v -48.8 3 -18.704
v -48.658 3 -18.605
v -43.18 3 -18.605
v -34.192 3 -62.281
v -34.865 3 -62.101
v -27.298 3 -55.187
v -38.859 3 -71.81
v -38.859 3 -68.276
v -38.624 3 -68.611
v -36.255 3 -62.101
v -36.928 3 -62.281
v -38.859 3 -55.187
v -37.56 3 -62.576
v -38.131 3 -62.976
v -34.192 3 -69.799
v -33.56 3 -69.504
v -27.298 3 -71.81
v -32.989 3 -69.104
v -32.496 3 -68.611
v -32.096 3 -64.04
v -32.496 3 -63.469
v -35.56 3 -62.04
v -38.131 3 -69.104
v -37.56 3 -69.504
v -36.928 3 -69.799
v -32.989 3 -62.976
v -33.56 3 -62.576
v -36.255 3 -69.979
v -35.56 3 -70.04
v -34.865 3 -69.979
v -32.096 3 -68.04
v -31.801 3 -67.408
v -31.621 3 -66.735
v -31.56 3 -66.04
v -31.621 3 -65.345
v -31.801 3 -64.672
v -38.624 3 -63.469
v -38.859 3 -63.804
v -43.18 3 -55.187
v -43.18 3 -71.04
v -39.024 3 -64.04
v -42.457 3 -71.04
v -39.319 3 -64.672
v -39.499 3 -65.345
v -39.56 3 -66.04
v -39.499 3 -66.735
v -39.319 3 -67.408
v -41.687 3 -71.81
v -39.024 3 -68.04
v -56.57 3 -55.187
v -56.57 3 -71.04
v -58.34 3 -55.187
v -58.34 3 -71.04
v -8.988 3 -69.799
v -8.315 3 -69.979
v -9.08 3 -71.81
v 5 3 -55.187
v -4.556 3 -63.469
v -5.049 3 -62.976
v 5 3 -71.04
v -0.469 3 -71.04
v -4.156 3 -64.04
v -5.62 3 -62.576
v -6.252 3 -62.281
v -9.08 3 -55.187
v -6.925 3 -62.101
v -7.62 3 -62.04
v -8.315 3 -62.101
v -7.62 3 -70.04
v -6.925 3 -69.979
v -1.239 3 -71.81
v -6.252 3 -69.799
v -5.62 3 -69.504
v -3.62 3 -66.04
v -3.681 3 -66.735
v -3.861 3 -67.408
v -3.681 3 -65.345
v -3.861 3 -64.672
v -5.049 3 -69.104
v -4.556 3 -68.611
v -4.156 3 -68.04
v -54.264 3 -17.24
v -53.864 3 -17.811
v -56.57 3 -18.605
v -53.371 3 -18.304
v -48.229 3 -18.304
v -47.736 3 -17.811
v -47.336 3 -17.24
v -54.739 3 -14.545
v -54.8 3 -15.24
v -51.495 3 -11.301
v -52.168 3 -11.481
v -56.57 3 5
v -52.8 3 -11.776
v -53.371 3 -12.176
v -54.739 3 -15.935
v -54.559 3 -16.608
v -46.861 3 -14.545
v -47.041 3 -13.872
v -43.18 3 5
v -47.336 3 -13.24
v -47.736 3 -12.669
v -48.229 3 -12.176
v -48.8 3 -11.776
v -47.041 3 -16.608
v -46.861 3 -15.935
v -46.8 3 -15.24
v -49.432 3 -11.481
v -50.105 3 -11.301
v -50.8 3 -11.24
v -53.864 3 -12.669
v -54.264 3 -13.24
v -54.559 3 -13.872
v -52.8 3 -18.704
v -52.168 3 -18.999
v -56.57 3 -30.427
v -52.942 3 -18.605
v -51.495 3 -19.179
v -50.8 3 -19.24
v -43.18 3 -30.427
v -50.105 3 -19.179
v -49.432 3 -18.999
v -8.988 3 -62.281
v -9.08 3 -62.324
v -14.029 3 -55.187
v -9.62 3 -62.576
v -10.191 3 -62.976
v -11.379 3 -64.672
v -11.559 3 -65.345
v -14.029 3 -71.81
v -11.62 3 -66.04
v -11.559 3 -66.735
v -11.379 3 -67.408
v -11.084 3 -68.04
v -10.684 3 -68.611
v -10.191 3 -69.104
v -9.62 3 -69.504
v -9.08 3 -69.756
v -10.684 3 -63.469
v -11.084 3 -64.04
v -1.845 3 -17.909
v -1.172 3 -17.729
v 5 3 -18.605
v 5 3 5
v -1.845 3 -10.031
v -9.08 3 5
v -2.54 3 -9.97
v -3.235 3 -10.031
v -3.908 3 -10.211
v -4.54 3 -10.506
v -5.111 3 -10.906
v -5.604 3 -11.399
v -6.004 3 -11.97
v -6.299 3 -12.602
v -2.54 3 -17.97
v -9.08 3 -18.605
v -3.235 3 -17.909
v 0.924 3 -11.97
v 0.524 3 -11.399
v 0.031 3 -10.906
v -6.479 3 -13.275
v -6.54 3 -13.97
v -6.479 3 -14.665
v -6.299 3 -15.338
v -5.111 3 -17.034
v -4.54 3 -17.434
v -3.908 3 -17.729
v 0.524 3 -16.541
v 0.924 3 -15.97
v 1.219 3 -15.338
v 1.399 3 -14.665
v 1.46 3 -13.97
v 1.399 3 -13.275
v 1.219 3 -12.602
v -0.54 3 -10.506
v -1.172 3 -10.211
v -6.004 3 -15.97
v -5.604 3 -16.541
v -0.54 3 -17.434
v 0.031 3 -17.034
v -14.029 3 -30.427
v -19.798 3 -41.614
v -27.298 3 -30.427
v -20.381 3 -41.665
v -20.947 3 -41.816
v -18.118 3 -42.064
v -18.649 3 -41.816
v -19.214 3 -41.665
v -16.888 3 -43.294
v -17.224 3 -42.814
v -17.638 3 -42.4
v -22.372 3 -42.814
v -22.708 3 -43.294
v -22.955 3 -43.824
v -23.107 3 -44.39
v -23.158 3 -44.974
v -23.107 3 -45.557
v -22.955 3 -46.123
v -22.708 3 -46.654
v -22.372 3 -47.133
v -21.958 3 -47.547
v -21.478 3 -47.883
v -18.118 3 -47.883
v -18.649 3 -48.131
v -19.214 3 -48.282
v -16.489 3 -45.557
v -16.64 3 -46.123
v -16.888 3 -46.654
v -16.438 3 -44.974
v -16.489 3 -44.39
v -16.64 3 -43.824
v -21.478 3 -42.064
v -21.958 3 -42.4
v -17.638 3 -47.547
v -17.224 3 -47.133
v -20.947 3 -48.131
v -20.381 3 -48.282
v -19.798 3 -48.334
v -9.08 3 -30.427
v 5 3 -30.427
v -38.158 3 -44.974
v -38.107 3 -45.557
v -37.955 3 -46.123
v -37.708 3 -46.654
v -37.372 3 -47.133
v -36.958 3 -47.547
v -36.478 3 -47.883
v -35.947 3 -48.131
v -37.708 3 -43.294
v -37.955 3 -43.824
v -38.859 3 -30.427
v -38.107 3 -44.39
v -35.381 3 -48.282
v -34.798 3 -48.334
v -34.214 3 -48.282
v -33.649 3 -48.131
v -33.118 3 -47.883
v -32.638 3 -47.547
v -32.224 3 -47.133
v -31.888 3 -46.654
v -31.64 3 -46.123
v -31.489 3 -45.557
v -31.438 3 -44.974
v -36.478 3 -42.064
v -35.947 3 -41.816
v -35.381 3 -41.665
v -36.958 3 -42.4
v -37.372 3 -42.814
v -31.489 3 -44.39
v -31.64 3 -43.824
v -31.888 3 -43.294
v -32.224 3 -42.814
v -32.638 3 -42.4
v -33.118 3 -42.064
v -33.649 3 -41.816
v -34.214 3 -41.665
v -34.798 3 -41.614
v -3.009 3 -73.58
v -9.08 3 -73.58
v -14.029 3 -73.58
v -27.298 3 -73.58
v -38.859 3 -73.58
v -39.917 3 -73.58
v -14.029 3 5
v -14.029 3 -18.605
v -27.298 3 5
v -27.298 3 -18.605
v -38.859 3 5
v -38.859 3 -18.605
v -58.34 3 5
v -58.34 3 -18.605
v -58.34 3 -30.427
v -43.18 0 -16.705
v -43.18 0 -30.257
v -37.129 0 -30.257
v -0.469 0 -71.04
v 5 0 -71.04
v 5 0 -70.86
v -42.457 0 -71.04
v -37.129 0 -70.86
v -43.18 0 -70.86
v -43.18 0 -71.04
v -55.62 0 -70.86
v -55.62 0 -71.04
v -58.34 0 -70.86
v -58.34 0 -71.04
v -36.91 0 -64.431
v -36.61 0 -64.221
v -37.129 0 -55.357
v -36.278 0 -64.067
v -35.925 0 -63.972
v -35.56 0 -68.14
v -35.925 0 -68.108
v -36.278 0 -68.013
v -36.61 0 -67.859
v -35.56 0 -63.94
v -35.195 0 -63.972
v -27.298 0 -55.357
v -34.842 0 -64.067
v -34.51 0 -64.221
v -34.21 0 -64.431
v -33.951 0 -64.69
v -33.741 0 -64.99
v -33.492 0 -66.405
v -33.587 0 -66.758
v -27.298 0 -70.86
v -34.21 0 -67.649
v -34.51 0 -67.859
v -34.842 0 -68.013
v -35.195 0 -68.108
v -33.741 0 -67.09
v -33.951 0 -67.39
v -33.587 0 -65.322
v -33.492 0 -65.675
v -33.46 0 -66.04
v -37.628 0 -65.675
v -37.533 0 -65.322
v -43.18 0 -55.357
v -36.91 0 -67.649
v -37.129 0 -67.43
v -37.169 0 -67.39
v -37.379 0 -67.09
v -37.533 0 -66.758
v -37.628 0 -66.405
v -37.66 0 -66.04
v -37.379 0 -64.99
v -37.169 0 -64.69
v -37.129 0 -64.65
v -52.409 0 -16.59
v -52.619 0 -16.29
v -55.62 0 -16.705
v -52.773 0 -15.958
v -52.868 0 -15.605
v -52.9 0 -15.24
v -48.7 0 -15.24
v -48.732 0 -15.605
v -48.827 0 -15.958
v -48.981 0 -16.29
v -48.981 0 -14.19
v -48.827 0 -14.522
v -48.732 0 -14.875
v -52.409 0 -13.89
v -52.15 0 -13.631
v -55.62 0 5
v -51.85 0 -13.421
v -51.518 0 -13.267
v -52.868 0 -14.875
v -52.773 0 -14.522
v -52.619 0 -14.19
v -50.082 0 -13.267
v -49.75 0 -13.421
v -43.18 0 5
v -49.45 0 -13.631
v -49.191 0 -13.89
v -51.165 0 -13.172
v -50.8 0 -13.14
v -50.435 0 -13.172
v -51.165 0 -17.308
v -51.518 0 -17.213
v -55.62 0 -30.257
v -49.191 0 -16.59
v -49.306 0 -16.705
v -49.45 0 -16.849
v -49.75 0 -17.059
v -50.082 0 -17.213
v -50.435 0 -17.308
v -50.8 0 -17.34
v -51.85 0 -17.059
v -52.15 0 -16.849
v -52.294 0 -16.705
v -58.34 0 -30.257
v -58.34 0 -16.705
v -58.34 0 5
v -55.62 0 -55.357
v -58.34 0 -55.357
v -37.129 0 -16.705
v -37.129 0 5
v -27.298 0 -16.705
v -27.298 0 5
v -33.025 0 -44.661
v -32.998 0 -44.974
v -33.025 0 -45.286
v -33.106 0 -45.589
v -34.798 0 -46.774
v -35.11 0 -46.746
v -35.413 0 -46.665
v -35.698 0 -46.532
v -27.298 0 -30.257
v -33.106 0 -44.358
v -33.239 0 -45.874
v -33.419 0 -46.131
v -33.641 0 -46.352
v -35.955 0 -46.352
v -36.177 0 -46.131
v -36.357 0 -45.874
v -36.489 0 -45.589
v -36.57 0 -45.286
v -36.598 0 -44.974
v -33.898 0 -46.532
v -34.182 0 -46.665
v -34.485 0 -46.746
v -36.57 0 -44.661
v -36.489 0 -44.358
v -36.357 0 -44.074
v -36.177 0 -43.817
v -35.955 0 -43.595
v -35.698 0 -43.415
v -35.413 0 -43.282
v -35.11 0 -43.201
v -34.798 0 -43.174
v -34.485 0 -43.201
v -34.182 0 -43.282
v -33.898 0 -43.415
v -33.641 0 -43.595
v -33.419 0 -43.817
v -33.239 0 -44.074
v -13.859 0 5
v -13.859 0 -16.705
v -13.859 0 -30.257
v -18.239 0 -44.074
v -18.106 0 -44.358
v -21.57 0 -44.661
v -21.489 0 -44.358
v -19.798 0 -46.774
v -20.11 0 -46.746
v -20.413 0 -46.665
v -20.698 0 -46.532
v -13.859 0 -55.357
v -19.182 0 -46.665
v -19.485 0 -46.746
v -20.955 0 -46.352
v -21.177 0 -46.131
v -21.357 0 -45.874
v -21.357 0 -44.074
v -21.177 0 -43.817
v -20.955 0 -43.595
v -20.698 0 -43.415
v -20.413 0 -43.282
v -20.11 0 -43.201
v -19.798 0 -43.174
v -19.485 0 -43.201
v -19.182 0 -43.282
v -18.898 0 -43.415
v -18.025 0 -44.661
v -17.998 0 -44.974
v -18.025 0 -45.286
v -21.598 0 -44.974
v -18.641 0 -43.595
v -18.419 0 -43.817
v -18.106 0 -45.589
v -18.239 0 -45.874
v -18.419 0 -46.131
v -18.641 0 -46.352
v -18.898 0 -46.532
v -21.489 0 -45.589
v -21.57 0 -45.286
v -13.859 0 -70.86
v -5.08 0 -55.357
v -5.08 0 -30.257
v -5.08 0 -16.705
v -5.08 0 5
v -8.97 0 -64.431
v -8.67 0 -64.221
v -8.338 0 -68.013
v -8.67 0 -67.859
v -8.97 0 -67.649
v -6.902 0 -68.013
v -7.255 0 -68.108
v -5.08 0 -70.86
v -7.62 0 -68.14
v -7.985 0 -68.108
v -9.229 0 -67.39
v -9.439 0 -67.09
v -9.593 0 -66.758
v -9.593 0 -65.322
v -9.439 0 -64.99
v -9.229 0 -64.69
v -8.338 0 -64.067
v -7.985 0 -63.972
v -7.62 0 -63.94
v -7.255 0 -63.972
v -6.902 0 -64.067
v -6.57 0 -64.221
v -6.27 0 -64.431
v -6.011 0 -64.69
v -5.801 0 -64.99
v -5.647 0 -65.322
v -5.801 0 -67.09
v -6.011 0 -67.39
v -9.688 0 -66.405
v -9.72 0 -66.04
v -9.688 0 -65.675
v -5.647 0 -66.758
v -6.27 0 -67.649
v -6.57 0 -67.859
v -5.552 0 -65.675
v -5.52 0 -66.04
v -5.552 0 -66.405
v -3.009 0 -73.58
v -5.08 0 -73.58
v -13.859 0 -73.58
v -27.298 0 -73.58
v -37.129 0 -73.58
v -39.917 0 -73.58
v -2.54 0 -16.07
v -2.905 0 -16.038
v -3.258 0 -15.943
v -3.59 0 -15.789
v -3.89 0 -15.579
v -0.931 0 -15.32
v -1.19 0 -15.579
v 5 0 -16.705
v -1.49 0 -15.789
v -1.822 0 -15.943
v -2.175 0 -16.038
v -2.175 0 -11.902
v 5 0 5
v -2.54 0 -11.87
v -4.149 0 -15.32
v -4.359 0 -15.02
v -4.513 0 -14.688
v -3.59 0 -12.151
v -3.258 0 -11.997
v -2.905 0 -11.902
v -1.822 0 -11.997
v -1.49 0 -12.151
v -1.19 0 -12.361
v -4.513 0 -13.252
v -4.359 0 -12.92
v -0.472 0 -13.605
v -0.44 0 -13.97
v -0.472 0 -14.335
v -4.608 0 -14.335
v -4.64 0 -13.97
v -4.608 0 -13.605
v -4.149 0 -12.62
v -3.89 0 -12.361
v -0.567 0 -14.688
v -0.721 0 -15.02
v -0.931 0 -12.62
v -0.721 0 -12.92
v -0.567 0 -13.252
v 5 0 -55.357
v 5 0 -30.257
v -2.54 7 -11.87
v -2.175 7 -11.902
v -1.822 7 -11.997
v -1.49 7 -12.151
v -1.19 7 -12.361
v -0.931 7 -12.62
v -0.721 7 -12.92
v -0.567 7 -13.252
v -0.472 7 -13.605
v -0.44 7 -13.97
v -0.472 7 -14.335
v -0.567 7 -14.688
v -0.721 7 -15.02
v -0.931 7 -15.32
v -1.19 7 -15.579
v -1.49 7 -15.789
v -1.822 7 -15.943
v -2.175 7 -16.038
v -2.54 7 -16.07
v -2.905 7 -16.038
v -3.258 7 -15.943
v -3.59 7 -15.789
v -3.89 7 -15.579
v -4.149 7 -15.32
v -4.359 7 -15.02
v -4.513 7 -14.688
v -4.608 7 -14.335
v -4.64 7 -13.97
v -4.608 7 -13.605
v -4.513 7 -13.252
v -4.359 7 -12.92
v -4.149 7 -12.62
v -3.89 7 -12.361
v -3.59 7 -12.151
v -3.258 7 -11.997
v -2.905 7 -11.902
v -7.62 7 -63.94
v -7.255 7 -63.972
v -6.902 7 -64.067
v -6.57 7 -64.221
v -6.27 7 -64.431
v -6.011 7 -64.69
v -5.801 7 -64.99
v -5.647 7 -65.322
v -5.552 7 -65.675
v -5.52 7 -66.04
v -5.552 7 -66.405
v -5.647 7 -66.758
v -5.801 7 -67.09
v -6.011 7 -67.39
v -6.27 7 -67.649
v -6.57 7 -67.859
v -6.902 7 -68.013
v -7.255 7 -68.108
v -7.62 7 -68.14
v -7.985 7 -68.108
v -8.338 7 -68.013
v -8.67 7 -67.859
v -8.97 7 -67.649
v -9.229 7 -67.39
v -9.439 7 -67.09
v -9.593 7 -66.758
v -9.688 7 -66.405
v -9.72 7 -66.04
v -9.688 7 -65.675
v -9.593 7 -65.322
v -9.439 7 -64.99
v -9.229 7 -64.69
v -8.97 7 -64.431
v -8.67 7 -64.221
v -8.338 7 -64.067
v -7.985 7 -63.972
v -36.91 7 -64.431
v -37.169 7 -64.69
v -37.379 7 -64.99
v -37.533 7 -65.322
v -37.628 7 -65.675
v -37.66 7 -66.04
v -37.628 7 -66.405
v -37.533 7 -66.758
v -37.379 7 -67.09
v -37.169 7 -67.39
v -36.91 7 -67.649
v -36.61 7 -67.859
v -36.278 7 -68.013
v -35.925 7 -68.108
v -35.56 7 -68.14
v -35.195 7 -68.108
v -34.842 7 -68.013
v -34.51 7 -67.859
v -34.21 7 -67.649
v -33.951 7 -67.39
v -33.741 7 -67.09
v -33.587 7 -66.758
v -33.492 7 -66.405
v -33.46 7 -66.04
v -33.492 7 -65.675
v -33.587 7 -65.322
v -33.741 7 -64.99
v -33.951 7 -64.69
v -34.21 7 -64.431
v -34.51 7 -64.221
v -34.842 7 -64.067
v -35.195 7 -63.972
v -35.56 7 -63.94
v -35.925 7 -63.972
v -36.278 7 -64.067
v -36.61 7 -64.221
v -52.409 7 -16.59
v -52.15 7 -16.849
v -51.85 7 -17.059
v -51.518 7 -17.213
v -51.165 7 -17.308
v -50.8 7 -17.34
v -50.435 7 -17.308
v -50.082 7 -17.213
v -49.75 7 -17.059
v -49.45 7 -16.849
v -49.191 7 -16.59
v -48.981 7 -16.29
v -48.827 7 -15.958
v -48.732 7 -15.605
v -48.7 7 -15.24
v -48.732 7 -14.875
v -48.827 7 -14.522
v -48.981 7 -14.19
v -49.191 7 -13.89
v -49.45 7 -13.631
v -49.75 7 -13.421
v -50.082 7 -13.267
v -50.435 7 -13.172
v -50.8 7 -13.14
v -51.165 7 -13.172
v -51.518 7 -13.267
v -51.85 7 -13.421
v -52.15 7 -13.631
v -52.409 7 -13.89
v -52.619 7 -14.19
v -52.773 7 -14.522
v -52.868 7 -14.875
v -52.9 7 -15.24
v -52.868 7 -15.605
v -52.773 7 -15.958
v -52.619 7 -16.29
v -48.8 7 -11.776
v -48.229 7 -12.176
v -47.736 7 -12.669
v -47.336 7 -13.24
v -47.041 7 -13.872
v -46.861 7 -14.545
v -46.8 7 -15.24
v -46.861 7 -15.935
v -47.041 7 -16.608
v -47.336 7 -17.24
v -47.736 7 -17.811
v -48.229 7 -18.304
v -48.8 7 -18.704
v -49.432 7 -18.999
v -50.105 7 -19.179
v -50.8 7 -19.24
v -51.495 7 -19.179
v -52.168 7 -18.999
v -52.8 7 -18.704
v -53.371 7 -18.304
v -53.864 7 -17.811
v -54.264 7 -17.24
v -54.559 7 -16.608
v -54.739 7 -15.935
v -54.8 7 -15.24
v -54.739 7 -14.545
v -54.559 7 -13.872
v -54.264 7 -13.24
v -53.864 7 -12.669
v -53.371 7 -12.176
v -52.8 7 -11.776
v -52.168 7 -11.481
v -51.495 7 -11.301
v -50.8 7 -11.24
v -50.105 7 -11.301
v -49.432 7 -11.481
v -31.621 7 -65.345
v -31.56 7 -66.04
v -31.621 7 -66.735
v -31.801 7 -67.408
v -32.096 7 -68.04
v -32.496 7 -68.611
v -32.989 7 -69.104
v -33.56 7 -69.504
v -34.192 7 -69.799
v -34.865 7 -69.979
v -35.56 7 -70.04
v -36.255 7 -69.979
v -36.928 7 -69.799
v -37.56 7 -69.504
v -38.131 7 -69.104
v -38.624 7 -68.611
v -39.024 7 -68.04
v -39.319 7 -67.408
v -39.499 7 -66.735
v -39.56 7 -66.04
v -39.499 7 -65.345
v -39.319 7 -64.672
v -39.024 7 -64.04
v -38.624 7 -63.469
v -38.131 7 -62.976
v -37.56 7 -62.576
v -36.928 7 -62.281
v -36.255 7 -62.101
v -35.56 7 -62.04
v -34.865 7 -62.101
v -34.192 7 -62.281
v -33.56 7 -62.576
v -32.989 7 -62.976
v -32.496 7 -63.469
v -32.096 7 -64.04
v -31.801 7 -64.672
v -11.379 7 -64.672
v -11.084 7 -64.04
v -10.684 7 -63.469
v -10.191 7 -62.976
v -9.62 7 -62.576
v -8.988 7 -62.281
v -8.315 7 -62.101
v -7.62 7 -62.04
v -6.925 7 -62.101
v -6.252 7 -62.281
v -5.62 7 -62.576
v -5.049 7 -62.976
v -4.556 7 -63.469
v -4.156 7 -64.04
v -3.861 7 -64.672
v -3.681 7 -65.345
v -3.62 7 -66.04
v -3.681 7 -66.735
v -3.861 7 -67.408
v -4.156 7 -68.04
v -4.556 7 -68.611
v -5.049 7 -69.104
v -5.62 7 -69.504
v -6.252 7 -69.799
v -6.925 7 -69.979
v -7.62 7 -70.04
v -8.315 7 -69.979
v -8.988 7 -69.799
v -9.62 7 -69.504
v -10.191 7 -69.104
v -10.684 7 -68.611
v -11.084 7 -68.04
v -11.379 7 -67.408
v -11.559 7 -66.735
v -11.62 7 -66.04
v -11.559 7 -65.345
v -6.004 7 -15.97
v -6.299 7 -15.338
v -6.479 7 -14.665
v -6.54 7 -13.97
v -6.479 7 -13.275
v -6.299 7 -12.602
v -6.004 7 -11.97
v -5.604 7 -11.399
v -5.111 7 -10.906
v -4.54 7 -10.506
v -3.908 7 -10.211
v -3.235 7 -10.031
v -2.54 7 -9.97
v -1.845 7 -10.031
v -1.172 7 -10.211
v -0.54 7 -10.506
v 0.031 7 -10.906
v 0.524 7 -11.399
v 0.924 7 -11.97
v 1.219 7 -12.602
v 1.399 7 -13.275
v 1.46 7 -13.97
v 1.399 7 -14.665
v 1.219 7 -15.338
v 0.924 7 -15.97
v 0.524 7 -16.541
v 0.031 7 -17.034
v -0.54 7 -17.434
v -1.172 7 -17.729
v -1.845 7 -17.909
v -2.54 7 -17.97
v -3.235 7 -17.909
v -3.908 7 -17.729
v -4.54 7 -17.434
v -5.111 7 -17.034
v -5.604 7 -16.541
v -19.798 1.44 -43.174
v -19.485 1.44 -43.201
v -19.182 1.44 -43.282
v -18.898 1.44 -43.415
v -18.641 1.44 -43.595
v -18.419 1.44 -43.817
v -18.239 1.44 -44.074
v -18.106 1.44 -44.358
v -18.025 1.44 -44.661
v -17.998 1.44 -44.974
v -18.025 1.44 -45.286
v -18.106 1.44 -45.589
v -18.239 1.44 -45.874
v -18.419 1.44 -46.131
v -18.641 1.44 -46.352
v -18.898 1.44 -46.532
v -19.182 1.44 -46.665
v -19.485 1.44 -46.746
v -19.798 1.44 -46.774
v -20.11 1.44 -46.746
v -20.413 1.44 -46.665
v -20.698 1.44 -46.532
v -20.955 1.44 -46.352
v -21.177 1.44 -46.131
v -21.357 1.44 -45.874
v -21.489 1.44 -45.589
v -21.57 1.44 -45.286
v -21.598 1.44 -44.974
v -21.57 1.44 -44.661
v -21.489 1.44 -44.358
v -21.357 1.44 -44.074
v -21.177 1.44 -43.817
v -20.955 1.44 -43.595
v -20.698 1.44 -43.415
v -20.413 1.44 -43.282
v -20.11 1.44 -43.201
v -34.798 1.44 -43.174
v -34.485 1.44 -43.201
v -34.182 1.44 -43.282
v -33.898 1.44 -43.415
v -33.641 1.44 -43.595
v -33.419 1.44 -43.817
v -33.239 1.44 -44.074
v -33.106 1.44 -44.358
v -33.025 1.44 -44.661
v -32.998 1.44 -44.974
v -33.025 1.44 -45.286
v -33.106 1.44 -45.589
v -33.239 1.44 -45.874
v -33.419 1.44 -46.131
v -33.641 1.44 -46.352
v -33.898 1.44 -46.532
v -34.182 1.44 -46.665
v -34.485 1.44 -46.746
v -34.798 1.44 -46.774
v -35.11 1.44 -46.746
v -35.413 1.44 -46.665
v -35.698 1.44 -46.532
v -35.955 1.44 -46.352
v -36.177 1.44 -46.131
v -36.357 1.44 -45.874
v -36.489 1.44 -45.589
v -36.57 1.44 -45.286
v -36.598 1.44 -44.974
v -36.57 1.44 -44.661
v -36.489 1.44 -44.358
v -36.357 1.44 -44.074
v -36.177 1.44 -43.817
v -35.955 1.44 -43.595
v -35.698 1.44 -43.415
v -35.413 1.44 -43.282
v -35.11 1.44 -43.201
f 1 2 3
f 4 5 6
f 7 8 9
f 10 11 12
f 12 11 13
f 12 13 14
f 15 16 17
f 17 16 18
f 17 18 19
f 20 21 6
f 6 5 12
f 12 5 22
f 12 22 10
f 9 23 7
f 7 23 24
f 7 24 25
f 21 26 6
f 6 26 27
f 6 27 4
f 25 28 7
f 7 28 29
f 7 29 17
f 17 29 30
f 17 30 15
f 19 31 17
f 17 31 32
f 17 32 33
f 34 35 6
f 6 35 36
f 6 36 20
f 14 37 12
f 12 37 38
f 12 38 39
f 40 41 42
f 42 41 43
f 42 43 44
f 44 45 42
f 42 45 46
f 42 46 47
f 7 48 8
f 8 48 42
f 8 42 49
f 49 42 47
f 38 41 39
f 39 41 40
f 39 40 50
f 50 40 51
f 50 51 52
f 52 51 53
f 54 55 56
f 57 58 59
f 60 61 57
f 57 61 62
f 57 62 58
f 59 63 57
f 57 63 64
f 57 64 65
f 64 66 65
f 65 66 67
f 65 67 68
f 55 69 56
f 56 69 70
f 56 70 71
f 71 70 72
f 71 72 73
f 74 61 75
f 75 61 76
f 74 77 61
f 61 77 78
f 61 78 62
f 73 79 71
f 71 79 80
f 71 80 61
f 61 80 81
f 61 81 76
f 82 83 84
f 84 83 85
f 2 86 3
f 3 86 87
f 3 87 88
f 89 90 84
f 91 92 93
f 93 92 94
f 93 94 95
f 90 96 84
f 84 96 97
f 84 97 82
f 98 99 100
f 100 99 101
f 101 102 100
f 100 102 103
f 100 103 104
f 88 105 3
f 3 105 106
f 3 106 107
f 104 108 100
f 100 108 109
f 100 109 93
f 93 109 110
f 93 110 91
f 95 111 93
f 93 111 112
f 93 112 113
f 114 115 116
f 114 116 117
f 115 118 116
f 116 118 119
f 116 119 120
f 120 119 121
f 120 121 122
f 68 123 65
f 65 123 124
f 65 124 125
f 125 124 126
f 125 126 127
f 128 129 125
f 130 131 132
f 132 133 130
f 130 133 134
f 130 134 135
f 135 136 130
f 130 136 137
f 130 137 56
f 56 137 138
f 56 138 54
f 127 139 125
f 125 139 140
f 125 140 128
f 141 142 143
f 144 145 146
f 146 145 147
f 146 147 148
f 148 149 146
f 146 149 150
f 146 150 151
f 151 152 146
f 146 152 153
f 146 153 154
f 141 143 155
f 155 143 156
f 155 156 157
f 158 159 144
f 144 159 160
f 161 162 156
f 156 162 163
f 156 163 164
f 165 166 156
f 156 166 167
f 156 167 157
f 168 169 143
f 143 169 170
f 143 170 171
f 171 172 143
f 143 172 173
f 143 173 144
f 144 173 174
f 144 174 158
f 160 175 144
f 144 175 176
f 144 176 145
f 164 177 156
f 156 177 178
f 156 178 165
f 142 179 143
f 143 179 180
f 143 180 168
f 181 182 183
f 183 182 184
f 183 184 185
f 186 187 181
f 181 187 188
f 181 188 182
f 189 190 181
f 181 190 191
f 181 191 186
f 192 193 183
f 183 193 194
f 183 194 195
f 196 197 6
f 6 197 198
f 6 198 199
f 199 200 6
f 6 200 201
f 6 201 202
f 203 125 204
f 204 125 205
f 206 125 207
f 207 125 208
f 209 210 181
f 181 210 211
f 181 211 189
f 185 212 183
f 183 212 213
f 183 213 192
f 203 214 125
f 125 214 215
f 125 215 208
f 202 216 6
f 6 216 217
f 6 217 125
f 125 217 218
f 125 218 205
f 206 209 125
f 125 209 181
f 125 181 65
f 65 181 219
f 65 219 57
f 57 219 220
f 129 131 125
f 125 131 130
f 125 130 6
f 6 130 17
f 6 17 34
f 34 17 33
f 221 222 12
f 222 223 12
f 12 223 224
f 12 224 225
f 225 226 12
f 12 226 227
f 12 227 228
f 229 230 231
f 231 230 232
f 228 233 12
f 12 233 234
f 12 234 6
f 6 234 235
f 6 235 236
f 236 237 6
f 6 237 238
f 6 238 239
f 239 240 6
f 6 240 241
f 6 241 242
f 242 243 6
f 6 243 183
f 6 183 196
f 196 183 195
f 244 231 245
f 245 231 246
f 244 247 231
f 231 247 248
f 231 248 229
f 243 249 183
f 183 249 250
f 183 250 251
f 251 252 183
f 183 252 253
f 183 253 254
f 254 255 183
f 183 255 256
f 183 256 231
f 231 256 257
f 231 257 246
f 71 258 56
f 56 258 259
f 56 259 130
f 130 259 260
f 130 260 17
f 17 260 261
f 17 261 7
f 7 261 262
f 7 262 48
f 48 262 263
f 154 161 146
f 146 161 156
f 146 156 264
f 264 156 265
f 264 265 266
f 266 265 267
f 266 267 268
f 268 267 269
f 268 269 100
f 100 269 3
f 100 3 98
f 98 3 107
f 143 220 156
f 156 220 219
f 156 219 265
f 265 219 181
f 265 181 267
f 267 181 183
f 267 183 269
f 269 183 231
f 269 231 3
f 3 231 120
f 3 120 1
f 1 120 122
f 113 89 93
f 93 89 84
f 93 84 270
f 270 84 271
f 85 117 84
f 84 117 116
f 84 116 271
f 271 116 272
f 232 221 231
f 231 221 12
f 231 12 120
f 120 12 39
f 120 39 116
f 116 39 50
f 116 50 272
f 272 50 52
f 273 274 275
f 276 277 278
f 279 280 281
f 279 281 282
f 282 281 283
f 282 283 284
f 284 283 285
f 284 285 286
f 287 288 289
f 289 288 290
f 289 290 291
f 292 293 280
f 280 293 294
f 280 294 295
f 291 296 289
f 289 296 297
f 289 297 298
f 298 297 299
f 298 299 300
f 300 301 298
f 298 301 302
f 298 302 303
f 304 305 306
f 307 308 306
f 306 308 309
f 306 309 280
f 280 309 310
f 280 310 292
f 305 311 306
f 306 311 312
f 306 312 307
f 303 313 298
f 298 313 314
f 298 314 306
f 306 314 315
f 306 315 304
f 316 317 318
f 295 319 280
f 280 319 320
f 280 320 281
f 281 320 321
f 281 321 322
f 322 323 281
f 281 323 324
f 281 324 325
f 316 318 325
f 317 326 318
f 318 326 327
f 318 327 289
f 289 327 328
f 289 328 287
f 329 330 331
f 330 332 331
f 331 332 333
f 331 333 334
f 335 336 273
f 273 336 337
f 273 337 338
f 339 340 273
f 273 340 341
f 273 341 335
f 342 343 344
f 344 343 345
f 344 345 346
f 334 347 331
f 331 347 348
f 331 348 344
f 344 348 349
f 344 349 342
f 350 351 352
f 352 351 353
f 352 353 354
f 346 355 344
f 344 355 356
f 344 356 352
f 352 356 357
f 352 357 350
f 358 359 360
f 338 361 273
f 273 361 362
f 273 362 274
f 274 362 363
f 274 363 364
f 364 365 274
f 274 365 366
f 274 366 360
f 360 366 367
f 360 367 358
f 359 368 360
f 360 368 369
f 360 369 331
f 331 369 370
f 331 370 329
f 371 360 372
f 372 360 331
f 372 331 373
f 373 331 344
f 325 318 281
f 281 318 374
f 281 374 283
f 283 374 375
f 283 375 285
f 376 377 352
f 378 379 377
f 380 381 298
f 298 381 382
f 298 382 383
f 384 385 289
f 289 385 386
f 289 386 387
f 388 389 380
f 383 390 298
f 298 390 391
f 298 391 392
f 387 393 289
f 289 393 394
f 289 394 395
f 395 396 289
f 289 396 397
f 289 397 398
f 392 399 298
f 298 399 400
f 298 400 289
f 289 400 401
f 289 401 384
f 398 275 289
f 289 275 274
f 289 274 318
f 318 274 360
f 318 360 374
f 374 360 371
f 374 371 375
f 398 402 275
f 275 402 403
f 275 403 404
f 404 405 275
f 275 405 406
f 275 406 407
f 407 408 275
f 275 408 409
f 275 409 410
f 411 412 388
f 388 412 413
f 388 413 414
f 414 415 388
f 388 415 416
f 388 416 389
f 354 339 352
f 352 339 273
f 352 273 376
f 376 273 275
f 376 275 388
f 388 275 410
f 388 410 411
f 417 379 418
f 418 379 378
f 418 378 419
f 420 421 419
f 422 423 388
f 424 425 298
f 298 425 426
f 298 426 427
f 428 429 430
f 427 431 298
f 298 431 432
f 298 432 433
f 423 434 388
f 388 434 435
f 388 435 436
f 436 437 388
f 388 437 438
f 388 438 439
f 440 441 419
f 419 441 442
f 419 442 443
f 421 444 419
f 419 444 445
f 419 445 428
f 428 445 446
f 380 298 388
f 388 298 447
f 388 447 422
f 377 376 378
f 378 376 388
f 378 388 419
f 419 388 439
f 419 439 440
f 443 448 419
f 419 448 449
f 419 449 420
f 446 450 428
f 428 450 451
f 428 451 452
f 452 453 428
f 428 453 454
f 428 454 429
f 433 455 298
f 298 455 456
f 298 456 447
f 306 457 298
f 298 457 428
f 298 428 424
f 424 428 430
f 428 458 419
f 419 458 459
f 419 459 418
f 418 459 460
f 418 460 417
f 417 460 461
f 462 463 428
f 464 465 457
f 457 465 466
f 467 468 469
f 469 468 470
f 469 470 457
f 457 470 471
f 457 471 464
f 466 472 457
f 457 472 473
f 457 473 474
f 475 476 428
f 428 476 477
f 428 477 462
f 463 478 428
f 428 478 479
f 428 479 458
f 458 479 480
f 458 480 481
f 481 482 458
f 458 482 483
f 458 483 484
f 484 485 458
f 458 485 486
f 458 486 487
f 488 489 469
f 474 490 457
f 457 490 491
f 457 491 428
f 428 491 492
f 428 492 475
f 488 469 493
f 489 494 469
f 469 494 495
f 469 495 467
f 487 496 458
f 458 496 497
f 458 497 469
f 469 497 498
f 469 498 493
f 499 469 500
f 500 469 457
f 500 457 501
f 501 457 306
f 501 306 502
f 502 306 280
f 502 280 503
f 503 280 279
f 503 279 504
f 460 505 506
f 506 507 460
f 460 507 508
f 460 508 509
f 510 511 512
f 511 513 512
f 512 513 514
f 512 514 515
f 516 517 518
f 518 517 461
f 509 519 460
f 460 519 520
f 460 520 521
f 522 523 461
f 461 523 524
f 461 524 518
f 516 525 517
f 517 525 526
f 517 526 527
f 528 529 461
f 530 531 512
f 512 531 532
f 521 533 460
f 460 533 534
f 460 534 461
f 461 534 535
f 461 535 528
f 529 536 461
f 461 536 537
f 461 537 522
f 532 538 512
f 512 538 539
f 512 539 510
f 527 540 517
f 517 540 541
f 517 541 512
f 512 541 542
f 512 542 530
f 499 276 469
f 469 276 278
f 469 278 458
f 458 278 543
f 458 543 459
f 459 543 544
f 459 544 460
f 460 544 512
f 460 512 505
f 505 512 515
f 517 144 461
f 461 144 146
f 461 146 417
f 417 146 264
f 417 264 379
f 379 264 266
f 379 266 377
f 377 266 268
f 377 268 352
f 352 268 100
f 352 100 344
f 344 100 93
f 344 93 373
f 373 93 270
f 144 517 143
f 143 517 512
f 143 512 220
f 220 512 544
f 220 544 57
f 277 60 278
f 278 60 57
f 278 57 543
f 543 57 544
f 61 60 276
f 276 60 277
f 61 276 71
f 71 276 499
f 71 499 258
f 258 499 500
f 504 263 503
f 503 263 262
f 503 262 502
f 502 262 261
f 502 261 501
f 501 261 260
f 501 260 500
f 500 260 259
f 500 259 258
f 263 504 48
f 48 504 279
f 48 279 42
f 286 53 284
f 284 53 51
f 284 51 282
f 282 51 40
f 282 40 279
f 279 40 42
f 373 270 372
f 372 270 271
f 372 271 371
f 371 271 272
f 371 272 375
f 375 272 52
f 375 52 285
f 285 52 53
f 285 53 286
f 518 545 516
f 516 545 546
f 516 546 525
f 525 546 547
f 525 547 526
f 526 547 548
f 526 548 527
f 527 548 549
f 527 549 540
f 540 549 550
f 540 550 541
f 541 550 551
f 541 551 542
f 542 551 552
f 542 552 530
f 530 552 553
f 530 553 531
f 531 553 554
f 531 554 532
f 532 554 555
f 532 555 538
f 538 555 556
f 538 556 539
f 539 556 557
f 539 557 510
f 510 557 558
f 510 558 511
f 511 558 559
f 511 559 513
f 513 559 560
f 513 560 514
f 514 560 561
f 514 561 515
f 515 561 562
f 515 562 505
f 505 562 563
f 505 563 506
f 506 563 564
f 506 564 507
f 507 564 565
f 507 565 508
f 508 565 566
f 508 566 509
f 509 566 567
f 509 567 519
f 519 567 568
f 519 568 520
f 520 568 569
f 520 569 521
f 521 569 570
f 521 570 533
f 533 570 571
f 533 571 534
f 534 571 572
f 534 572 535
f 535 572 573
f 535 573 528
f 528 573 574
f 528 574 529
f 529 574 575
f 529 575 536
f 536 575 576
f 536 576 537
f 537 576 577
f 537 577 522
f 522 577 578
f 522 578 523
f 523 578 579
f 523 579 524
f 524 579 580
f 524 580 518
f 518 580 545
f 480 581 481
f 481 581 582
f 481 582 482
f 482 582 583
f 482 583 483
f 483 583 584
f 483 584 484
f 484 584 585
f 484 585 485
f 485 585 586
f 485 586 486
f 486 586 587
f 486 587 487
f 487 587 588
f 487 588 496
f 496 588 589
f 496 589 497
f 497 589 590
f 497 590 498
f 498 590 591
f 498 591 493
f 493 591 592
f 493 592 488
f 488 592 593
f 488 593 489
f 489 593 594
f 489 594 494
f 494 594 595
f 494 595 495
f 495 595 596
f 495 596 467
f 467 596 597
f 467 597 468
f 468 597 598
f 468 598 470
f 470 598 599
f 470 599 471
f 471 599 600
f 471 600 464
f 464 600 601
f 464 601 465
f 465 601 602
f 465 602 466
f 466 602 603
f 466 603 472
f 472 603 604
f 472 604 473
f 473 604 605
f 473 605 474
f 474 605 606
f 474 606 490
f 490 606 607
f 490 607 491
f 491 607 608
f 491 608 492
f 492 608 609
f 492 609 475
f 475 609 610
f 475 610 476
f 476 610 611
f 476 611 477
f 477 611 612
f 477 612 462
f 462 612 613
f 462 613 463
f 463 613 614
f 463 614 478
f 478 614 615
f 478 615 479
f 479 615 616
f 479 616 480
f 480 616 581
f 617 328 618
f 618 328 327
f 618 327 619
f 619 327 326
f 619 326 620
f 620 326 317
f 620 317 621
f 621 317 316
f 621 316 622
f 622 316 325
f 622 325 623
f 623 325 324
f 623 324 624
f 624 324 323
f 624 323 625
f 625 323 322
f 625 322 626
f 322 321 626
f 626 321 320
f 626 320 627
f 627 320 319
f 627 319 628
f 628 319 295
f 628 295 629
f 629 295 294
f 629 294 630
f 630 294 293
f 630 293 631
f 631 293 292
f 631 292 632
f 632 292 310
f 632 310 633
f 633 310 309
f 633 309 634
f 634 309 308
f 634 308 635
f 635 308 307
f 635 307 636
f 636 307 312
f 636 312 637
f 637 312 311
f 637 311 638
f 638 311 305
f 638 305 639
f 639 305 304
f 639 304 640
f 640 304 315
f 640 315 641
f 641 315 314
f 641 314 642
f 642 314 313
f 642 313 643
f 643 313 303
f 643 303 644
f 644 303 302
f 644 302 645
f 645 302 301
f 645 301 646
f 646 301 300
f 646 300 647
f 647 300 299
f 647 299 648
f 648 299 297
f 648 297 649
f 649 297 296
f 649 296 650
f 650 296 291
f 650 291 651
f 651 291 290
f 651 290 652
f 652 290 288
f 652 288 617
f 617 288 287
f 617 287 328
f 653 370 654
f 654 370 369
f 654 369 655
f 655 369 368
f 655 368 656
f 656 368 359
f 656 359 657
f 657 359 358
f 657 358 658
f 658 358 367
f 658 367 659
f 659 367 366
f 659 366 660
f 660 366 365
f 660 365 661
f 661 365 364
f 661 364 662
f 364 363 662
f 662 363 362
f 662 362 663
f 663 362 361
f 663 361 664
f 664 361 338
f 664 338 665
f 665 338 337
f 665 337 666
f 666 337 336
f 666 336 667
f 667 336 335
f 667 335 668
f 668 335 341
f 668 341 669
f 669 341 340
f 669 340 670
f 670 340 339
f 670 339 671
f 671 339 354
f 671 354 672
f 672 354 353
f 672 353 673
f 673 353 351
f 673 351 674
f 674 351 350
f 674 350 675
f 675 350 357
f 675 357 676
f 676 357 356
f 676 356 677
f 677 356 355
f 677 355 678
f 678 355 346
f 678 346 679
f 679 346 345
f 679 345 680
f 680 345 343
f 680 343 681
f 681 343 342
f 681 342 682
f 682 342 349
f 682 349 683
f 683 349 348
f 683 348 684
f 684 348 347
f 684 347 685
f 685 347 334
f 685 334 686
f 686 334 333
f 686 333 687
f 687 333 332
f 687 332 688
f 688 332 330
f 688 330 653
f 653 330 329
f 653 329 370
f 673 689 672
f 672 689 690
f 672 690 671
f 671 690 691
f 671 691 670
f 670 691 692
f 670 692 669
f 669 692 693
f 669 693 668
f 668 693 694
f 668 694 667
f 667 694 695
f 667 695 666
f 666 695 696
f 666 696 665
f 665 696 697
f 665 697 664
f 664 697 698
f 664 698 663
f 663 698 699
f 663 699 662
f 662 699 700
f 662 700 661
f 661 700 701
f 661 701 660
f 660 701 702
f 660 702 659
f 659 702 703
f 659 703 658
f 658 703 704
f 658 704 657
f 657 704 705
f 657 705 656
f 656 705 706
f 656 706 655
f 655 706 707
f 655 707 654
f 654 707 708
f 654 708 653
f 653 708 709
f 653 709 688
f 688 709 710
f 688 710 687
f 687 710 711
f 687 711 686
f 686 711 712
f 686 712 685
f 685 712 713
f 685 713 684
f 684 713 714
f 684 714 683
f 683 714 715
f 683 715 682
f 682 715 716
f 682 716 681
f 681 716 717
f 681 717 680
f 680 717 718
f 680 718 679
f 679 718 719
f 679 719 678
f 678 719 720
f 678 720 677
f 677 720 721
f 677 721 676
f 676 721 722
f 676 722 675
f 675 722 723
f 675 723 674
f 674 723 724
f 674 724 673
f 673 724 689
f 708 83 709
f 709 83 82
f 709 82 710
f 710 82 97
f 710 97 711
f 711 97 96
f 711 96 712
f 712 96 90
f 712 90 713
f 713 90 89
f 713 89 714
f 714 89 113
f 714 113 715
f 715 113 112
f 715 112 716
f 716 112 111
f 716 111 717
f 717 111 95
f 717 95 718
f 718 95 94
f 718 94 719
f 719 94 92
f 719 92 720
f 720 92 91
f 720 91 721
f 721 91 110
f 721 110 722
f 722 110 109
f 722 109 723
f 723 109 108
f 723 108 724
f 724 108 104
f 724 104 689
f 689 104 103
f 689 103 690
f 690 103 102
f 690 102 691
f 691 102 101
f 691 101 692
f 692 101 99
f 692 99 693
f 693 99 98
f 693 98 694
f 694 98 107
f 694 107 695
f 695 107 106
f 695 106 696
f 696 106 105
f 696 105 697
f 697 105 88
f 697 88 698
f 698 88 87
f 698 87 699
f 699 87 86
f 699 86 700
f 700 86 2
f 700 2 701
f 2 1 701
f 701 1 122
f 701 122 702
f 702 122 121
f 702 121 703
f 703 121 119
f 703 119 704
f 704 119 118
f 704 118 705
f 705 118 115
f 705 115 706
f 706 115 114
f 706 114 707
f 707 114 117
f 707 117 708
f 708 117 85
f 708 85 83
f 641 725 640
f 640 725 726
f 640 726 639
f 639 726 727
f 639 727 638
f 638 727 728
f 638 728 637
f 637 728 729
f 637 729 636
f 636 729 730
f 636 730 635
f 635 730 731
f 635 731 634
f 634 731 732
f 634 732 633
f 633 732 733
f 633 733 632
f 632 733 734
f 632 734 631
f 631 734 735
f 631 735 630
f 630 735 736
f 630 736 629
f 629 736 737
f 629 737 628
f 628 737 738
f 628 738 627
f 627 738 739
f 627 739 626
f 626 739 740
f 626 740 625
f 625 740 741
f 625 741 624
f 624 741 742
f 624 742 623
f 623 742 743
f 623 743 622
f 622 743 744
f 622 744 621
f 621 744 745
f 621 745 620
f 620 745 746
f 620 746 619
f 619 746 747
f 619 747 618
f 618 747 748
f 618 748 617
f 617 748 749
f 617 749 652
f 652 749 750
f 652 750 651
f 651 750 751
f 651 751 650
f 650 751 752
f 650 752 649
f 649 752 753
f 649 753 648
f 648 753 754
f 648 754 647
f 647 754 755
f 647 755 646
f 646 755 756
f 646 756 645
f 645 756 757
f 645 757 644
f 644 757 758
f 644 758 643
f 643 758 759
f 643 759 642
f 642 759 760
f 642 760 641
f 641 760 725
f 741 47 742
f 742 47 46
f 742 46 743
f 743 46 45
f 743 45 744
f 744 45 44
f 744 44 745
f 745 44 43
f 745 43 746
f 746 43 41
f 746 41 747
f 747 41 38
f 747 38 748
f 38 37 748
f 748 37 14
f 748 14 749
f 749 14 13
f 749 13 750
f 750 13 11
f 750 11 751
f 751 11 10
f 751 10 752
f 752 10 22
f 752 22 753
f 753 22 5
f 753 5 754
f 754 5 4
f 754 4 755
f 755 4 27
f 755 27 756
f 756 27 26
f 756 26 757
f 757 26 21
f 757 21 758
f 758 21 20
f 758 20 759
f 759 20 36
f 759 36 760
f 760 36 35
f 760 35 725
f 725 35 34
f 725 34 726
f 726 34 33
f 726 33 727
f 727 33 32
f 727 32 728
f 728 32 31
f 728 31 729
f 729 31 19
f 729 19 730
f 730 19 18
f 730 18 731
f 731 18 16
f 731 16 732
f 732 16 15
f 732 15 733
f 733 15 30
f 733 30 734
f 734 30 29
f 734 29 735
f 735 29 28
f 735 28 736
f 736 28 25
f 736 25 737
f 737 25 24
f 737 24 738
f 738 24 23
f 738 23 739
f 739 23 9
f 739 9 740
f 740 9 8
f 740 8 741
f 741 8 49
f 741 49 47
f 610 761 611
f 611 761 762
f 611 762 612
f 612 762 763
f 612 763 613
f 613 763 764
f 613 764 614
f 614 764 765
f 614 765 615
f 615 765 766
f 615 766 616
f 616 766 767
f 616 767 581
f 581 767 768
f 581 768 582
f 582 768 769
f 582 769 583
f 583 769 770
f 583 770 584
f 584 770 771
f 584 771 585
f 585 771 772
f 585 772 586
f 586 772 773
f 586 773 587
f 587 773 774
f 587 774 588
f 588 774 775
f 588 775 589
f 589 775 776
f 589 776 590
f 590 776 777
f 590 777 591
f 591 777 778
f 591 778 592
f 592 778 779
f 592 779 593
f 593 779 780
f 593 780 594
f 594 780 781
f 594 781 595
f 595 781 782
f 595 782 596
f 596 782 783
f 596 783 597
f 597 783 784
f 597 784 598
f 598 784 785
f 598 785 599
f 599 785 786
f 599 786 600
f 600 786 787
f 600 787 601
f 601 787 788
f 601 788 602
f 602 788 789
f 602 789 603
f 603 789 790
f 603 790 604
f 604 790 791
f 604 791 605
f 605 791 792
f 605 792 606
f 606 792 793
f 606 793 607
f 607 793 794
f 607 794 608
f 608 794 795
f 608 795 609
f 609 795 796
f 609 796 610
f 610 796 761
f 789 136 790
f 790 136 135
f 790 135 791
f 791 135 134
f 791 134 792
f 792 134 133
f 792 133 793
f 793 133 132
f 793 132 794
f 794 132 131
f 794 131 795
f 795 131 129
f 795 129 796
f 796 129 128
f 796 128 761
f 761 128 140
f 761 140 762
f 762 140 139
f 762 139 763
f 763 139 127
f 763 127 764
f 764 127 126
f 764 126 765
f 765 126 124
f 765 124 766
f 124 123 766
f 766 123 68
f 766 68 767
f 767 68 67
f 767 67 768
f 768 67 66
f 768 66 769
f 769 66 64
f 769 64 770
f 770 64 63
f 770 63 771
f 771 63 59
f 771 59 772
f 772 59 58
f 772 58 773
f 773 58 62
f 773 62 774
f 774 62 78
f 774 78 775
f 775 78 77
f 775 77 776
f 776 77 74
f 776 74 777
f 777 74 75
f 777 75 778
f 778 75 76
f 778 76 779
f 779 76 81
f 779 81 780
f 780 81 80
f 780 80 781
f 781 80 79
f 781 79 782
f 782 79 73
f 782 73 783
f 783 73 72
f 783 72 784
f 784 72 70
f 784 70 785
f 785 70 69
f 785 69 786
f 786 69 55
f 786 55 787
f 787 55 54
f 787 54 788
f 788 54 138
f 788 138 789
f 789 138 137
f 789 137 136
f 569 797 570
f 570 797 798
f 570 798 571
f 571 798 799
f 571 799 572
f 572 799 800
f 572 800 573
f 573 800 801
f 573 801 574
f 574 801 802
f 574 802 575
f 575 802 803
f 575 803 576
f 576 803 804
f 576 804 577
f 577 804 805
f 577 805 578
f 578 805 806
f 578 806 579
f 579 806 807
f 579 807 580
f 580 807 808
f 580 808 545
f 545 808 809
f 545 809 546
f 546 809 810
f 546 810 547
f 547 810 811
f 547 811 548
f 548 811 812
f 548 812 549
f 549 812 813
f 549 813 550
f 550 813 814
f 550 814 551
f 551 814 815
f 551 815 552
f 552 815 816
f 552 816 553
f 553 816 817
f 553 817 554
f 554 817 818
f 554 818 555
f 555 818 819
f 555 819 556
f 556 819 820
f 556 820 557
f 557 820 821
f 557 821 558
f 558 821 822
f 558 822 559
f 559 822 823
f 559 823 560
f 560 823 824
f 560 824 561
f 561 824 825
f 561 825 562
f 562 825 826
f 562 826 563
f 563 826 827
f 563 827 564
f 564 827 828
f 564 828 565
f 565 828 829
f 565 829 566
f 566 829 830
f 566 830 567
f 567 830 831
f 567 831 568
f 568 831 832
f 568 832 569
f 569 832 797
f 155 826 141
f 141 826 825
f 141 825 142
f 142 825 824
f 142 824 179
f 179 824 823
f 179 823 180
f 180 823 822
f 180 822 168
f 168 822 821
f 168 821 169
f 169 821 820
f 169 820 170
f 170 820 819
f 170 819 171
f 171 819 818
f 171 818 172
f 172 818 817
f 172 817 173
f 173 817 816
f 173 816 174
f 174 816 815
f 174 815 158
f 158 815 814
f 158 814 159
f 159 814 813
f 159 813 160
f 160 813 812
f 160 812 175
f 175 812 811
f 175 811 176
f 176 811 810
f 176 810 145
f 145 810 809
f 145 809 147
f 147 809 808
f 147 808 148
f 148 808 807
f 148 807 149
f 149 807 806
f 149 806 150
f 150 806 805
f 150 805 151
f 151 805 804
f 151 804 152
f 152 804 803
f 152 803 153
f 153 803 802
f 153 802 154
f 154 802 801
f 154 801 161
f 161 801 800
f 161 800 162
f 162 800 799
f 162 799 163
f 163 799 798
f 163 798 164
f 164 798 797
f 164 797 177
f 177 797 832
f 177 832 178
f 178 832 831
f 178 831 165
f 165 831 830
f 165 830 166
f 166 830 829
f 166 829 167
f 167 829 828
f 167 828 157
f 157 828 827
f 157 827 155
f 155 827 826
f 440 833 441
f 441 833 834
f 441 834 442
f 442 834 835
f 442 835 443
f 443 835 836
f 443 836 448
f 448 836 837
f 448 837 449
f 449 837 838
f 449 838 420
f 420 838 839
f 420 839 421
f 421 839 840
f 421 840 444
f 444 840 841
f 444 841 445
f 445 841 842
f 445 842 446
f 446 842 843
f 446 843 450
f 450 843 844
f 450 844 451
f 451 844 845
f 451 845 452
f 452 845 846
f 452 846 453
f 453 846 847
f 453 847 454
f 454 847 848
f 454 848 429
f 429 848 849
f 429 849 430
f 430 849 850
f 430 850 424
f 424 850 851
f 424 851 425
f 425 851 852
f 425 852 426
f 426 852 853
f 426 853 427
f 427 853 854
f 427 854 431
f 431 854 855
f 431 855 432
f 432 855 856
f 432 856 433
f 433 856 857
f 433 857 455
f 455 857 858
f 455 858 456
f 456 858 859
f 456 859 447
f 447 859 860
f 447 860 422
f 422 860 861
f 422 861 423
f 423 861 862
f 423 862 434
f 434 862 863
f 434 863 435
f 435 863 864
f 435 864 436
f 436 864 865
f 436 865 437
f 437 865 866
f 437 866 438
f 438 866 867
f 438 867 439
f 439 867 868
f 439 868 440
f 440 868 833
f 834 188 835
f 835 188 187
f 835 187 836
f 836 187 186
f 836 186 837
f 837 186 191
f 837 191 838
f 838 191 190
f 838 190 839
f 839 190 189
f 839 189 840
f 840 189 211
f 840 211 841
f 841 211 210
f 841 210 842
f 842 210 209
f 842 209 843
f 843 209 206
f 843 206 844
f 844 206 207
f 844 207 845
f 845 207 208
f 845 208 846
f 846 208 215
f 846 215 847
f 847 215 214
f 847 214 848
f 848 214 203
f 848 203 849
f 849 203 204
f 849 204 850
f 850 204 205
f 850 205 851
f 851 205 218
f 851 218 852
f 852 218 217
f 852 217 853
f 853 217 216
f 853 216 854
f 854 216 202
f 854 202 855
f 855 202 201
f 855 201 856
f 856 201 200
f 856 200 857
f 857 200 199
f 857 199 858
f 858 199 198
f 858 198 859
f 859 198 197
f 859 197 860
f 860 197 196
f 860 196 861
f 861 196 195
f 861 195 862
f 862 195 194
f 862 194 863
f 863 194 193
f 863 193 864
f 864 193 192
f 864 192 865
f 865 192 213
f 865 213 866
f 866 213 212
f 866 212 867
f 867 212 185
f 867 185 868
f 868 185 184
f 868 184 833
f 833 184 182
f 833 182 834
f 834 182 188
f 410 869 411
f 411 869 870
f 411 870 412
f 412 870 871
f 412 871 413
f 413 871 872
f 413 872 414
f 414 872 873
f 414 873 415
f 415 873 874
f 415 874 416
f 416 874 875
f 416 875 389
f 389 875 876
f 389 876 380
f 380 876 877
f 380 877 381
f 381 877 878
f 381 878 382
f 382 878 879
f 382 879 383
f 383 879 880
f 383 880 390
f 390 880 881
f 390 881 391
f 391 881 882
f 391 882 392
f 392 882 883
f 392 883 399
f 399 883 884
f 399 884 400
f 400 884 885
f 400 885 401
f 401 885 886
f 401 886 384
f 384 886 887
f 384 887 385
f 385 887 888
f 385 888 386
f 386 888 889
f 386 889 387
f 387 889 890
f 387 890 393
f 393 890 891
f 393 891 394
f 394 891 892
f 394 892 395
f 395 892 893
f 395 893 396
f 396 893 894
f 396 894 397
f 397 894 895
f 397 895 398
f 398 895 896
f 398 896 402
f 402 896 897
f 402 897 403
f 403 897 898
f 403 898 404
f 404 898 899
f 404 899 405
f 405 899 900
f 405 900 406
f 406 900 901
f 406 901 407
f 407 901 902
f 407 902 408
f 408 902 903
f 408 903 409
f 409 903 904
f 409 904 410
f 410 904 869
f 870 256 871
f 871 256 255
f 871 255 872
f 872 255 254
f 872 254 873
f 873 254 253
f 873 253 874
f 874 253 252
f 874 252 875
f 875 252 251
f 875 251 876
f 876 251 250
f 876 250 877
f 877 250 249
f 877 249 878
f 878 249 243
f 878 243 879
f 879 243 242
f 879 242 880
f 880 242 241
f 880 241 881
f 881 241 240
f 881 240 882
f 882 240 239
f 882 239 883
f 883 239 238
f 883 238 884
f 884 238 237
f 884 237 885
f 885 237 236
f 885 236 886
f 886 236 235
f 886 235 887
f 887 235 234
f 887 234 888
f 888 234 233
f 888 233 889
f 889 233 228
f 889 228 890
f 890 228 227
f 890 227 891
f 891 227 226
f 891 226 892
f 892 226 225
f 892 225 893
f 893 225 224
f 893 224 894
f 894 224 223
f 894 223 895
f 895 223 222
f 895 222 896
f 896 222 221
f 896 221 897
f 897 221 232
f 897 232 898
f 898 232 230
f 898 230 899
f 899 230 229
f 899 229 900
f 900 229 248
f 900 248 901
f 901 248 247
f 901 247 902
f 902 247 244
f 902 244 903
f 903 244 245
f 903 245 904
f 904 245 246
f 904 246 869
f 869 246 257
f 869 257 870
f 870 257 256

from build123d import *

# Parameters (mm, degrees)
SKETCH1_R                                            = 1.5875
BOSS_EXTRUDE1_DEPTH                                  = 3
SKETCH2_R                                            = 2.1
CUT_EXTRUDE1_DEPTH                                   = 94.949837679
BOSS_EXTRUDE2_START                                  = 4
SKETCH3_R                                            = 4
SKETCH3_R_2                                          = 2.1
BOSS_EXTRUDE2_DEPTH                                  = 4
CSK_FOR_M3_HEX_SOCKET_COUNTERSUNK_CAP_SC_D           = 3.6
CSK_FOR_M3_HEX_SOCKET_COUNTERSUNK_CAP_SC_DEPTH       = 14.44
CSK_FOR_M3_HEX_SOCKET_COUNTERSUNK_CAP_SC_CSINK_D     = 6.72
CSK_FOR_M3_HEX_SOCKET_COUNTERSUNK_CAP_SC_CSINK_ANGLE = 90
CSK_FOR_M3_HEX_SOCKET_COUNTERSUNK_CAP_SC_TIP         = 1.081549114


with BuildPart() as part:
    # Sketch1 → Boss-Extrude1 (new body)
    with BuildSketch(Plane(origin=(0, 0, 0), x_dir=(1, 0, 0), z_dir=(0, 1, 0))):
        Polygon((5, -5), (5, 71.04), (-0.468932188, 71.04), (-3.008932188, 73.58), (-39.917067812, 73.58), (-42.457067812, 71.04), (-58.34, 71.04), (-58.34, -5), align=None)
        with Locations(Location((-50.8, 15.24, 0), (0, 0, 270))):
            Circle(SKETCH1_R, mode=Mode.SUBTRACT)
        with Locations(Location((-2.54, 13.97, 0), (0, 0, 270))):
            Circle(SKETCH1_R, mode=Mode.SUBTRACT)
        with Locations(Location((-7.62, 66.04, 0), (0, 0, 270))):
            Circle(SKETCH1_R, mode=Mode.SUBTRACT)
        with Locations(Location((-35.56, 66.04, 0), (0, 0, 270))):
            Circle(SKETCH1_R, mode=Mode.SUBTRACT)
    extrude(amount=BOSS_EXTRUDE1_DEPTH)

    # Sketch2 → Cut-Extrude1 (cut, through all)
    with BuildSketch(Plane(origin=(0, 3, 0), x_dir=(1, 0, 0), z_dir=(0, 1, 0))):
        with Locations(Location((-50.8, 15.24, 0), (0, 0, 270))):
            Circle(SKETCH2_R)
        with Locations(Location((-35.56, 66.04, 0), (0, 0, 270))):
            Circle(SKETCH2_R)
        with Locations(Location((-7.62, 66.04, 0), (0, 0, 270))):
            Circle(SKETCH2_R)
        with Locations(Location((-2.54, 13.97, 0), (0, 0, 270))):
            Circle(SKETCH2_R)
    extrude(amount=-CUT_EXTRUDE1_DEPTH, mode=Mode.SUBTRACT)

    # Sketch3 → Boss-Extrude2 (add)
    # profile 1 of 4: a face of its own
    with BuildSketch(Plane(origin=(0, 3, 0), x_dir=(1, 0, 0), z_dir=(0, 1, 0)).offset(BOSS_EXTRUDE2_START)):
        with Locations(Location((-50.8, 15.24, 0), (0, 0, 270))):
            Circle(SKETCH3_R)
        with Locations(Location((-50.8, 15.24, 0), (0, 0, 270))):
            Circle(SKETCH3_R_2, mode=Mode.SUBTRACT)
    # profile 2 of 4: a face of its own
    with BuildSketch(Plane(origin=(0, 3, 0), x_dir=(1, 0, 0), z_dir=(0, 1, 0)).offset(BOSS_EXTRUDE2_START)):
        with Locations(Location((-35.56, 66.04, 0), (0, 0, 270))):
            Circle(SKETCH3_R)
        with Locations(Location((-35.56, 66.04, 0), (0, 0, 270))):
            Circle(SKETCH3_R_2, mode=Mode.SUBTRACT)
    # profile 3 of 4: a face of its own
    with BuildSketch(Plane(origin=(0, 3, 0), x_dir=(1, 0, 0), z_dir=(0, 1, 0)).offset(BOSS_EXTRUDE2_START)):
        with Locations(Location((-7.62, 66.04, 0), (0, 0, 270))):
            Circle(SKETCH3_R)
        with Locations(Location((-7.62, 66.04, 0), (0, 0, 270))):
            Circle(SKETCH3_R_2, mode=Mode.SUBTRACT)
    # profile 4 of 4: a face of its own
    with BuildSketch(Plane(origin=(0, 3, 0), x_dir=(1, 0, 0), z_dir=(0, 1, 0)).offset(BOSS_EXTRUDE2_START)):
        with Locations(Location((-2.54, 13.97, 0), (0, 0, 270))):
            Circle(SKETCH3_R)
        with Locations(Location((-2.54, 13.97, 0), (0, 0, 270))):
            Circle(SKETCH3_R_2, mode=Mode.SUBTRACT)
    extrude(amount=-BOSS_EXTRUDE2_DEPTH)

    # CSK for M3 Hex Socket Countersunk Cap Screw1
    with Locations(Plane(origin=(0, 3, 0), x_dir=(1, 0, 0), z_dir=(0, 1, 0))):
        with Locations((-34.797780841, 44.973541217), (-19.797780841, 44.973541217)):
            CounterSinkHole(CSK_FOR_M3_HEX_SOCKET_COUNTERSUNK_CAP_SC_D / 2, CSK_FOR_M3_HEX_SOCKET_COUNTERSUNK_CAP_SC_CSINK_D / 2, depth=CSK_FOR_M3_HEX_SOCKET_COUNTERSUNK_CAP_SC_DEPTH, counter_sink_angle=CSK_FOR_M3_HEX_SOCKET_COUNTERSUNK_CAP_SC_CSINK_ANGLE)
            with Locations((0, 0, -(CSK_FOR_M3_HEX_SOCKET_COUNTERSUNK_CAP_SC_DEPTH + CSK_FOR_M3_HEX_SOCKET_COUNTERSUNK_CAP_SC_TIP / 2))):  # 118° drill point
                Cone(0, CSK_FOR_M3_HEX_SOCKET_COUNTERSUNK_CAP_SC_D / 2, CSK_FOR_M3_HEX_SOCKET_COUNTERSUNK_CAP_SC_TIP, mode=Mode.SUBTRACT)


solid = part.part
